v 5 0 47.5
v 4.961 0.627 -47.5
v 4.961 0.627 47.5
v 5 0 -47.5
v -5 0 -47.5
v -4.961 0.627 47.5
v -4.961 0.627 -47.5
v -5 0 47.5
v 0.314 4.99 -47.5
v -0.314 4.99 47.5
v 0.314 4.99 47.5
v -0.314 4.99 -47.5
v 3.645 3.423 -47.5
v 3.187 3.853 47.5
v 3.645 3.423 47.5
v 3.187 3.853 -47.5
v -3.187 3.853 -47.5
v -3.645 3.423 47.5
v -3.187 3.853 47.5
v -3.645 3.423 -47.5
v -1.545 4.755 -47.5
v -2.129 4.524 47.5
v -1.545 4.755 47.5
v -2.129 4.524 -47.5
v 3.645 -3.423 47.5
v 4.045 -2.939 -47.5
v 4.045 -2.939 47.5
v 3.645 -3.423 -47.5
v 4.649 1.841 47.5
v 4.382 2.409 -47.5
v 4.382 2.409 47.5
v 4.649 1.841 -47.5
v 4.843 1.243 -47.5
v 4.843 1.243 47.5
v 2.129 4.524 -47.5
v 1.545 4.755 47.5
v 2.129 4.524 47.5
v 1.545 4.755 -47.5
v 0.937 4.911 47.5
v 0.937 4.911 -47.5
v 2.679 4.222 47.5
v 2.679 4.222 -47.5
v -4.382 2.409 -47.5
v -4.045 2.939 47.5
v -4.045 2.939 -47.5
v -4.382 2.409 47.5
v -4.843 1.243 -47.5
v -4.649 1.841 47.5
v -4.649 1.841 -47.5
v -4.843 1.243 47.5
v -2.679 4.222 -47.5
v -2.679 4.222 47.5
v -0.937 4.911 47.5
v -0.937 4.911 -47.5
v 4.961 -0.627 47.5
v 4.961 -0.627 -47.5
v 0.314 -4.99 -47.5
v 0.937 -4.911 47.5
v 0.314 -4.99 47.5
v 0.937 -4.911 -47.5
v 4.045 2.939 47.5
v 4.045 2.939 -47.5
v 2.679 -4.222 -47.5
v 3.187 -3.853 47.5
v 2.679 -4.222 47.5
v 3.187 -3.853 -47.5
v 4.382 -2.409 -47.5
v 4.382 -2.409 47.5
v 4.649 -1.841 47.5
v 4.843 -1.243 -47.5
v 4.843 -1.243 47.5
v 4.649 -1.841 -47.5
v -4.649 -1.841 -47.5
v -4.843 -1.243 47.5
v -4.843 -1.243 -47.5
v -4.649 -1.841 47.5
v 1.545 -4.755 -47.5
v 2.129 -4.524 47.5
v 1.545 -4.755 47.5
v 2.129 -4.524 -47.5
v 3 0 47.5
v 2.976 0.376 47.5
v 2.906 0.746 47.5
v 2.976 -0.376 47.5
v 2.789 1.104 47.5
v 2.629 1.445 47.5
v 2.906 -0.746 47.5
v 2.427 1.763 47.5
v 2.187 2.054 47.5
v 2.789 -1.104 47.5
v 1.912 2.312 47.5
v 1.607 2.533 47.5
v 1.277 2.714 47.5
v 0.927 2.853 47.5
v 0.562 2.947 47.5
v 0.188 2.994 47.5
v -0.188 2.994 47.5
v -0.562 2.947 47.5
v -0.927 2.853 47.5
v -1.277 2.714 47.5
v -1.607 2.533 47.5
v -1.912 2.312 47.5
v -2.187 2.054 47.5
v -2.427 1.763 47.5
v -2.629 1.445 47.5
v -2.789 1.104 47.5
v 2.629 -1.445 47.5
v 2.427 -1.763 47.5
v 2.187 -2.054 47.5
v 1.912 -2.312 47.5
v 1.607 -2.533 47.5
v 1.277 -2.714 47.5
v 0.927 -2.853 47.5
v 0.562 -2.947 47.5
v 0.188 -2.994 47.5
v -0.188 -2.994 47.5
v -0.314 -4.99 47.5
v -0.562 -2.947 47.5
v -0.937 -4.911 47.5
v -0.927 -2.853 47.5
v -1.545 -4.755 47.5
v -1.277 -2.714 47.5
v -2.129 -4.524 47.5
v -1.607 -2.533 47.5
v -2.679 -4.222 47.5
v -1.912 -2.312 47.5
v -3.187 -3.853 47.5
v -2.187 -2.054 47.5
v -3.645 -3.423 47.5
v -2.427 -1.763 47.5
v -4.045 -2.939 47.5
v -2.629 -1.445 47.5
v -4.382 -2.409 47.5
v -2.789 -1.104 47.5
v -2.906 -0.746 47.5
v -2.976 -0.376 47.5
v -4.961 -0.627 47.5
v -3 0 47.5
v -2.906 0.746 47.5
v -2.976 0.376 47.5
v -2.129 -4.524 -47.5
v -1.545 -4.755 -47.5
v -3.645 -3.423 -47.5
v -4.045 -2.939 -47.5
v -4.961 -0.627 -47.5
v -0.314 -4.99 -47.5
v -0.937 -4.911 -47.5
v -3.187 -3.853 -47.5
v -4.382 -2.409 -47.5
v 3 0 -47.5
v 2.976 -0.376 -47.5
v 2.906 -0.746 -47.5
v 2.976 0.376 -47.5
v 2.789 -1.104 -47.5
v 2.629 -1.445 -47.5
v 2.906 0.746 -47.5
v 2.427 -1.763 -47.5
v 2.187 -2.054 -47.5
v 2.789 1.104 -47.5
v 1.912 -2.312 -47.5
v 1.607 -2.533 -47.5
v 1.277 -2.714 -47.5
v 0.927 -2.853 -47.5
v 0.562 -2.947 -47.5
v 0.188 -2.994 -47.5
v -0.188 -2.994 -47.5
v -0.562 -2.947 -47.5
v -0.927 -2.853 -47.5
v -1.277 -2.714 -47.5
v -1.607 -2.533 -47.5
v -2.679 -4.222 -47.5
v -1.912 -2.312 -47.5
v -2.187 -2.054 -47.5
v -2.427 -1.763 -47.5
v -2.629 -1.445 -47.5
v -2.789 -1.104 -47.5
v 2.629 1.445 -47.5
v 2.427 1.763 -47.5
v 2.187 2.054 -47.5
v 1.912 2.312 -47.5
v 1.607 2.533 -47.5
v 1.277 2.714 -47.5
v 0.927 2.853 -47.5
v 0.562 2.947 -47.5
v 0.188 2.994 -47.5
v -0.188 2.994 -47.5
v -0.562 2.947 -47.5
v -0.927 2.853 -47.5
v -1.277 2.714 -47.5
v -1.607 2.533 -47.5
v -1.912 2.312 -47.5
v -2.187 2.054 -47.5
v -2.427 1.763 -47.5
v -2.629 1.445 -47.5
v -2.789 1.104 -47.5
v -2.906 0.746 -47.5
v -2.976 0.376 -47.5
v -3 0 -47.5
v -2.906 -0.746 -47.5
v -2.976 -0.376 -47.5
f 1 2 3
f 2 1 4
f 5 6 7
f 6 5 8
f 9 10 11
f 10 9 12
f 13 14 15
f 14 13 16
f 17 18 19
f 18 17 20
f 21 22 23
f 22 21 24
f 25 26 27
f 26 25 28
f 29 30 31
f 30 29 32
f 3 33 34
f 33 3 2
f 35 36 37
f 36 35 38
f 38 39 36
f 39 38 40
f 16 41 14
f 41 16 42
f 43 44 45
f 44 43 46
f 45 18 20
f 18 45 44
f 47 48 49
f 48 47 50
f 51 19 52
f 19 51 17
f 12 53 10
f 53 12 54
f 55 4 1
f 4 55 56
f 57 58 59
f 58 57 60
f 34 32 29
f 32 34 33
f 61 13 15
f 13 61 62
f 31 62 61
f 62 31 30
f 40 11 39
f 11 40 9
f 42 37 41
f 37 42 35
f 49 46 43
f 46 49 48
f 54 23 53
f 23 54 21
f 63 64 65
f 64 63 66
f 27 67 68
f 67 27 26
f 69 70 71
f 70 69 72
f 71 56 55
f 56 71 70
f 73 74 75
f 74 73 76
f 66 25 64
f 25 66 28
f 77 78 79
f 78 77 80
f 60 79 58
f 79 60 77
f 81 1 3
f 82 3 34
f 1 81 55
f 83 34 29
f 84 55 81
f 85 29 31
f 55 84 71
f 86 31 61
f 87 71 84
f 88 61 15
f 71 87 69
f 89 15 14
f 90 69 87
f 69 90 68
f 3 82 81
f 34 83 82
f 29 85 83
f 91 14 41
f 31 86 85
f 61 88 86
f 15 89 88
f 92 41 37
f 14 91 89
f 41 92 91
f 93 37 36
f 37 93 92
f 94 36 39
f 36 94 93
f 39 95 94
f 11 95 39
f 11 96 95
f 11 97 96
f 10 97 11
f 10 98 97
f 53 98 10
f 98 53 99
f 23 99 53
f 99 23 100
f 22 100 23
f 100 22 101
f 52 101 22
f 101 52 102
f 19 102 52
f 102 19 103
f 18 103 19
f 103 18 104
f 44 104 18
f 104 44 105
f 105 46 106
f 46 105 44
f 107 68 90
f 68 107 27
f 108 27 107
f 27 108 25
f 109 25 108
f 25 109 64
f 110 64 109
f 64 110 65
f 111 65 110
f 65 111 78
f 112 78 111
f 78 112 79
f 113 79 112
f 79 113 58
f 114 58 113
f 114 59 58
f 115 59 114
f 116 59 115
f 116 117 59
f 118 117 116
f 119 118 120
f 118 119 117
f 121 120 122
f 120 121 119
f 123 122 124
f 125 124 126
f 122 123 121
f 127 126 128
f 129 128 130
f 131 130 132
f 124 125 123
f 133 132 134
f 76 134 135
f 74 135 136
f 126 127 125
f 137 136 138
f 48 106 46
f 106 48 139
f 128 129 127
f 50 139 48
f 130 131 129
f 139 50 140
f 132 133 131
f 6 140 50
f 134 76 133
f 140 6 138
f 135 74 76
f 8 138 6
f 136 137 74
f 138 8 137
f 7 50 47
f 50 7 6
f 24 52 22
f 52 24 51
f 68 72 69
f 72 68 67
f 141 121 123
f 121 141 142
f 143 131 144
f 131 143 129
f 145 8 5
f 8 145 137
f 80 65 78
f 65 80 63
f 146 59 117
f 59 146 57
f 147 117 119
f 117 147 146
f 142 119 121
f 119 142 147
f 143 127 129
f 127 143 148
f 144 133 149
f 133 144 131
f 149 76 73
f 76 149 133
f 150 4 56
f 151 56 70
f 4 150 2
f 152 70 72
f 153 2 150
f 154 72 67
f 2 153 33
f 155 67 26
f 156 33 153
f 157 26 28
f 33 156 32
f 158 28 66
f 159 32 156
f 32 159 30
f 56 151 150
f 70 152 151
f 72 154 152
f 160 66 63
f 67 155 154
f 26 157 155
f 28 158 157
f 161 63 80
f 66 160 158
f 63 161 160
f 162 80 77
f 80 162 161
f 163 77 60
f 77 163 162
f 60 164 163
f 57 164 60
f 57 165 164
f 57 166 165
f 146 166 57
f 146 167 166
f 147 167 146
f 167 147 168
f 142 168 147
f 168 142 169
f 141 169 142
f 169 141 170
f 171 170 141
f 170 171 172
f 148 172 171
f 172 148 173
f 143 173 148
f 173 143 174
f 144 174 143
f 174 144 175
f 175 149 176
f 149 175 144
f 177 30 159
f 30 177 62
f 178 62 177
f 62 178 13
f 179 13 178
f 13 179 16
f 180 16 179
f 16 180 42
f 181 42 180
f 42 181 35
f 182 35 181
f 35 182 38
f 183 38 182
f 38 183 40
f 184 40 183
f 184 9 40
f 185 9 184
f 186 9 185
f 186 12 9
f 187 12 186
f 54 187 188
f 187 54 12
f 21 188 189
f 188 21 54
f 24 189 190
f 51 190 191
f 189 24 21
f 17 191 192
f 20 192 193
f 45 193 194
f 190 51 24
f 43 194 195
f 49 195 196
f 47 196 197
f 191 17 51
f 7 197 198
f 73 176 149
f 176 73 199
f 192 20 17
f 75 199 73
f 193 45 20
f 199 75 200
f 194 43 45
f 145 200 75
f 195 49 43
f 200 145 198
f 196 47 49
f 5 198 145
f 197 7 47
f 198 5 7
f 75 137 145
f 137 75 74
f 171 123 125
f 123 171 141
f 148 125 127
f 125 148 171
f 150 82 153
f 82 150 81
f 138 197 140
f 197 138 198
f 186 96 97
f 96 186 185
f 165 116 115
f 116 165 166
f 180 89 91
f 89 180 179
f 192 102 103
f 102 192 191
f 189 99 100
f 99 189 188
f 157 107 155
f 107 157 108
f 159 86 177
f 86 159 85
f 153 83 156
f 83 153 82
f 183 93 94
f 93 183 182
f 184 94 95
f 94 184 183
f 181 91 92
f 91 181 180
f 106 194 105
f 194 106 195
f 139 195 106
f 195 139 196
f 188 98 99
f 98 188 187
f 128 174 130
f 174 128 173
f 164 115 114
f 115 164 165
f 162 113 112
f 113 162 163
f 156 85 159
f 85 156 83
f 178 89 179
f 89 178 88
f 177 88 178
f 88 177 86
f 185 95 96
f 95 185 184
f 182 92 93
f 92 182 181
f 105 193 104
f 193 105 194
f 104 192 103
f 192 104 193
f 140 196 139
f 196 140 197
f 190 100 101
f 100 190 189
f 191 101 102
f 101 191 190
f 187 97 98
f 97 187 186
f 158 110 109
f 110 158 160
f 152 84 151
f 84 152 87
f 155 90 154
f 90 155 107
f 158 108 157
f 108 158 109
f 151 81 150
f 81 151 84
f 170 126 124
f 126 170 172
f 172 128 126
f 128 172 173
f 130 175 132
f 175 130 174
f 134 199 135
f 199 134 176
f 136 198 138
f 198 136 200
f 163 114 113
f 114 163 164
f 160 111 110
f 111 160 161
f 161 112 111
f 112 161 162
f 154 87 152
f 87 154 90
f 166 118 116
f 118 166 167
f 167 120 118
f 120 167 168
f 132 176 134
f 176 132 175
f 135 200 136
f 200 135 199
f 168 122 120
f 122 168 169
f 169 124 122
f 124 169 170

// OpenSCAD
$fn = 50;


difference() {
	union() {
		translate(v = [0, 0, -47.5000000000]) {
			cylinder(h = 95, r = 5.0000000000);
		}
	}
	union() {
		translate(v = [0, 0, -100.0000000000]) {
			cylinder(h = 200, r = 3.0000000000);
		}
	}
}
